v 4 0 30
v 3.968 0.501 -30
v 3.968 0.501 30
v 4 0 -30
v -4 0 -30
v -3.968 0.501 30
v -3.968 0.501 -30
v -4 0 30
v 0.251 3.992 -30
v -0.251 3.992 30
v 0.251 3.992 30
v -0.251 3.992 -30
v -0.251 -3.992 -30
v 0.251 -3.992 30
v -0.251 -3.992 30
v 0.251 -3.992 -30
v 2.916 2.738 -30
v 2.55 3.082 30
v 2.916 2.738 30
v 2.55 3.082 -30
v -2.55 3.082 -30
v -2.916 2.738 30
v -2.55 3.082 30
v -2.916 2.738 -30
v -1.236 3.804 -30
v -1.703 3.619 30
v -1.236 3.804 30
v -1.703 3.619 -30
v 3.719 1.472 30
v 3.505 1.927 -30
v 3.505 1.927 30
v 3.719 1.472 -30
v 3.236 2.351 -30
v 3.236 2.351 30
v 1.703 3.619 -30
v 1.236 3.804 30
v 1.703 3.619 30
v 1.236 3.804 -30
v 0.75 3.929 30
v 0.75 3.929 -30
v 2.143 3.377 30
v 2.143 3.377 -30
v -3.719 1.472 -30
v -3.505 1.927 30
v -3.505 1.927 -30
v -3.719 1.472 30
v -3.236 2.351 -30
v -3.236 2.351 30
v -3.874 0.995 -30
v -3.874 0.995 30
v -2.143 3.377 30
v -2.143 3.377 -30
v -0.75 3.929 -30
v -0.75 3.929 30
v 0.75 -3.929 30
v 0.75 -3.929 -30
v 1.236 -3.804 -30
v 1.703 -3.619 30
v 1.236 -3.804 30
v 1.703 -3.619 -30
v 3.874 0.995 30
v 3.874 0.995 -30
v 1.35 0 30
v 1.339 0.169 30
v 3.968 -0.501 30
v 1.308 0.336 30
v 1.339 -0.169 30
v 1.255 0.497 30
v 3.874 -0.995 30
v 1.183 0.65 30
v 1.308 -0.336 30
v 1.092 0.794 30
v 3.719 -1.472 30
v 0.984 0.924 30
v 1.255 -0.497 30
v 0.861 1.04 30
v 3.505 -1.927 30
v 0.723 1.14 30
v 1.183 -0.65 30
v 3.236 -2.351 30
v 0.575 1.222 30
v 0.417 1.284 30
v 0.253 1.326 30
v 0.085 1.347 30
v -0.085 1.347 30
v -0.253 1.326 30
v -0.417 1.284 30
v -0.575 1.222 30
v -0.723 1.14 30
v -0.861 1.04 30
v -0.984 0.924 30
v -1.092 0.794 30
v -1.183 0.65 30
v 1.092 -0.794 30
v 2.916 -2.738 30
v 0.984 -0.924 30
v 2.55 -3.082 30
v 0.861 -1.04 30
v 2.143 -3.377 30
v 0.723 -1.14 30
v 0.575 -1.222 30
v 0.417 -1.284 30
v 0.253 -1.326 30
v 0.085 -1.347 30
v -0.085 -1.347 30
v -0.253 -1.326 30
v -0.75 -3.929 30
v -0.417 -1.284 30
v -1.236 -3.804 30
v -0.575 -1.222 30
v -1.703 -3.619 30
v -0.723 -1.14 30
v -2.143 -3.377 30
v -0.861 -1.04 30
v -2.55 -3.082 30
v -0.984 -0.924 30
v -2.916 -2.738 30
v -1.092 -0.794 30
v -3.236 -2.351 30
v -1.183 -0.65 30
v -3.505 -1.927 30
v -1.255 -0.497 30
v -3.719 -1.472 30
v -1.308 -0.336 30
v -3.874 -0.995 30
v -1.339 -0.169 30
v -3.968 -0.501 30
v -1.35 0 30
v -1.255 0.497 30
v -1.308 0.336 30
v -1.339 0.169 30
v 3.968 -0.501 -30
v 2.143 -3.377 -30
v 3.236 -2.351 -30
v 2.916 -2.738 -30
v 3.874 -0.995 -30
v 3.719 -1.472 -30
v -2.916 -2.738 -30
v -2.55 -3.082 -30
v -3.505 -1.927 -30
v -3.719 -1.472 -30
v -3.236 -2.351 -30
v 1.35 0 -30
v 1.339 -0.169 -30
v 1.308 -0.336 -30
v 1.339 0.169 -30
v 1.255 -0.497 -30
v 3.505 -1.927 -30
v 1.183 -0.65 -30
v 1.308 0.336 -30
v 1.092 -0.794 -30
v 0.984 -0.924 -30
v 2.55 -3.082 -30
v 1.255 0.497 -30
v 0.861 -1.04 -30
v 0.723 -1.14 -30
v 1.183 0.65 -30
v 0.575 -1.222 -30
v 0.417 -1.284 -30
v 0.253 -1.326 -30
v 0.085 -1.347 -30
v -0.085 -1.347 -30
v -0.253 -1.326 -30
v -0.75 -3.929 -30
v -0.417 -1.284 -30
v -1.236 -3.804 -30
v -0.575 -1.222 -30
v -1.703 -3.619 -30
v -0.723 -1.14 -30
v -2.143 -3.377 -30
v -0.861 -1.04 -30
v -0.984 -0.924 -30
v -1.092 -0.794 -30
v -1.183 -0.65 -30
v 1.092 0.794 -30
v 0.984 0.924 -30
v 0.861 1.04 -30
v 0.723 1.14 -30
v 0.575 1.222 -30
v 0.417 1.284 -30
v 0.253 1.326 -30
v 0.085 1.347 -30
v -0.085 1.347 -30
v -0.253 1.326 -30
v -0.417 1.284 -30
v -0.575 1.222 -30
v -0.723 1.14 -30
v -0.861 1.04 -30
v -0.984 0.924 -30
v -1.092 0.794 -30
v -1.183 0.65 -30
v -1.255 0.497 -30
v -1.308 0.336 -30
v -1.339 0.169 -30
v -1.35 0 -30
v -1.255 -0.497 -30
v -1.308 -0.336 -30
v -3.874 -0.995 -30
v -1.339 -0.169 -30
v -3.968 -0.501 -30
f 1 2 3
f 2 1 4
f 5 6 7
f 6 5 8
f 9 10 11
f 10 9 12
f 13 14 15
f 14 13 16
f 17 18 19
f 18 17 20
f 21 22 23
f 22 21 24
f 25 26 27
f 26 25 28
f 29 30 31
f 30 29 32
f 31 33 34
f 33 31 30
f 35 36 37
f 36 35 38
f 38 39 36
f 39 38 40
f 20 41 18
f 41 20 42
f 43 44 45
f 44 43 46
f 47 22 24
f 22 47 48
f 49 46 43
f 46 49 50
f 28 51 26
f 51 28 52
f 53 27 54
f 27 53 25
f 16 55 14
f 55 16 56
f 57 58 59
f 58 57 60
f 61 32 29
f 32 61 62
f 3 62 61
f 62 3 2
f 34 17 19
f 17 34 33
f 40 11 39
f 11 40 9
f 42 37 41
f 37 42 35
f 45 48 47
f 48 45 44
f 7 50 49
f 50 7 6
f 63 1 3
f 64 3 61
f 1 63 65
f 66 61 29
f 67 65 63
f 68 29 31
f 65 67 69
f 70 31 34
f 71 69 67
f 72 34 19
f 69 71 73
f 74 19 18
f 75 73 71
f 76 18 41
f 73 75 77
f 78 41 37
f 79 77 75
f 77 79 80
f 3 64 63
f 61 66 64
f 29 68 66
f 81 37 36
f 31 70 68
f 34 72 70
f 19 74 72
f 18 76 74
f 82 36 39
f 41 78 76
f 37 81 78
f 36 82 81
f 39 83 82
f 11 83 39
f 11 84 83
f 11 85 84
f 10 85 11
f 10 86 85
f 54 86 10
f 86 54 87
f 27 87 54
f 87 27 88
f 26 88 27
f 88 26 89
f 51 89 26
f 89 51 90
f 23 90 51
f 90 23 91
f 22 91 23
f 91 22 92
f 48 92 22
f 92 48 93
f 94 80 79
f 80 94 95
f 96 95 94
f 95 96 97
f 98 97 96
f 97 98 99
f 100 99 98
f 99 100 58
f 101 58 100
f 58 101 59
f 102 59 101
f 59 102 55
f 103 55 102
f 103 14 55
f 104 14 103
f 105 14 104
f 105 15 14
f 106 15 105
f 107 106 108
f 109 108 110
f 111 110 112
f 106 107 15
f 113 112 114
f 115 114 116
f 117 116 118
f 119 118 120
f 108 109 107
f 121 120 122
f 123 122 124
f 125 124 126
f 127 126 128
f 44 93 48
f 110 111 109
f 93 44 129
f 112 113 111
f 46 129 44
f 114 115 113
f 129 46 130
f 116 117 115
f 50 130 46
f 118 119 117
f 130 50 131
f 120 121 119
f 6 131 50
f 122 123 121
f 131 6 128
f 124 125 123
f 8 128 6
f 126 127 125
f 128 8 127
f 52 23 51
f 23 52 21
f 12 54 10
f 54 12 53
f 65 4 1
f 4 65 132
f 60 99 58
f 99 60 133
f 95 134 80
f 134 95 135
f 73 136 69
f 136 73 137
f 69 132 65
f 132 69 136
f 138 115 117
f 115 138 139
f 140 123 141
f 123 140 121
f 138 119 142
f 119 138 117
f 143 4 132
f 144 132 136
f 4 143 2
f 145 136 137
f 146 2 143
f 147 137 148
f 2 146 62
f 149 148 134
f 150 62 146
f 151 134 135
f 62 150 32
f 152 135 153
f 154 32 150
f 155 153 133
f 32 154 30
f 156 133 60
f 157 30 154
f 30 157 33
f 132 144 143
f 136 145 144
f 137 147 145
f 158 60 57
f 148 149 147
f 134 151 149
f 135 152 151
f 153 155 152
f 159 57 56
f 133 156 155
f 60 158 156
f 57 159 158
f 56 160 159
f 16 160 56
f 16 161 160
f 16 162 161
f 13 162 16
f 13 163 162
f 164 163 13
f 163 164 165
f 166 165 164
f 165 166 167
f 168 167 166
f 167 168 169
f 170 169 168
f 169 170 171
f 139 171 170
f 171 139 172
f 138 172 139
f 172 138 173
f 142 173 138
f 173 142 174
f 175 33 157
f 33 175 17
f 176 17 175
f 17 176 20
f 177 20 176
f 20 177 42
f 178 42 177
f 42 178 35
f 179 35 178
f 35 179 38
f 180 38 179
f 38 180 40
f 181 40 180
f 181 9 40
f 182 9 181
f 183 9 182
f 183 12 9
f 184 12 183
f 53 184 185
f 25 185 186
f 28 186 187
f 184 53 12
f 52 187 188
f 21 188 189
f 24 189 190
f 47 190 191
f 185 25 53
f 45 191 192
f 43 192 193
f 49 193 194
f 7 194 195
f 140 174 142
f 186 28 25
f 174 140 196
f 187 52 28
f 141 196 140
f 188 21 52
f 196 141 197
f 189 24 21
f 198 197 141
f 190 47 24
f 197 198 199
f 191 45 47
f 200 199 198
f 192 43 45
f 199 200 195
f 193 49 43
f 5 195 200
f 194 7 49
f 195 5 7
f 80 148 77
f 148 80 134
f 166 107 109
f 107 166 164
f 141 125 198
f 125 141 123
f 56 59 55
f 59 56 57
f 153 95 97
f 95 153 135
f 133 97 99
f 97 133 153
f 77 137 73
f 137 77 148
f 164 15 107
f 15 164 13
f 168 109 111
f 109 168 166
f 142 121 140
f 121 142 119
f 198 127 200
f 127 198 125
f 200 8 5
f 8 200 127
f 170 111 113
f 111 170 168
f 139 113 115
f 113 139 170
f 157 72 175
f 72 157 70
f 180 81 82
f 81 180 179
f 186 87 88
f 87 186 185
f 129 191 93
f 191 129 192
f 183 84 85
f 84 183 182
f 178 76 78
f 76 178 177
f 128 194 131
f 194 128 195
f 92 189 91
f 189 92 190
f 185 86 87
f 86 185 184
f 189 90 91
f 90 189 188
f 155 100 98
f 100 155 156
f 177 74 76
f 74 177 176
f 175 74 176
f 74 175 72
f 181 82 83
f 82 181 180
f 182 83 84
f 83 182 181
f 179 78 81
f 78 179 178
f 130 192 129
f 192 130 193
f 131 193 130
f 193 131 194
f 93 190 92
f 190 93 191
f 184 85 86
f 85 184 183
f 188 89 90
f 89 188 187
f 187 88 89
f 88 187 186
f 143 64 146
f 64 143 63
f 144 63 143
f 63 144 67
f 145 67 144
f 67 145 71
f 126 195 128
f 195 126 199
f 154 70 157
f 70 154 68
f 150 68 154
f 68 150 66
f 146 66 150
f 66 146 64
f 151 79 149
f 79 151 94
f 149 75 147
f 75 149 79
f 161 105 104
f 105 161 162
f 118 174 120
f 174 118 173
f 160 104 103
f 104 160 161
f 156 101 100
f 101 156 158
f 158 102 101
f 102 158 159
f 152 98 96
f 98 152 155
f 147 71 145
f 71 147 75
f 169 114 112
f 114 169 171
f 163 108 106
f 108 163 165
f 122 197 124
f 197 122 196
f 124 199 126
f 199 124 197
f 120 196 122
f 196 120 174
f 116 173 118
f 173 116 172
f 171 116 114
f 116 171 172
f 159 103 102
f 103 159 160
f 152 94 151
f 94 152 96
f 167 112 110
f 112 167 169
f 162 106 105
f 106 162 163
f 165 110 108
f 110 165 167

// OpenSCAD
$fn = 50;


difference() {
	union() {
		translate(v = [0, 0, -30.0000000000]) {
			cylinder(h = 60, r = 4.0000000000);
		}
	}
	union() {
		translate(v = [0, 0, -100.0000000000]) {
			cylinder(h = 200, r = 1.3500000000);
		}
	}
}
